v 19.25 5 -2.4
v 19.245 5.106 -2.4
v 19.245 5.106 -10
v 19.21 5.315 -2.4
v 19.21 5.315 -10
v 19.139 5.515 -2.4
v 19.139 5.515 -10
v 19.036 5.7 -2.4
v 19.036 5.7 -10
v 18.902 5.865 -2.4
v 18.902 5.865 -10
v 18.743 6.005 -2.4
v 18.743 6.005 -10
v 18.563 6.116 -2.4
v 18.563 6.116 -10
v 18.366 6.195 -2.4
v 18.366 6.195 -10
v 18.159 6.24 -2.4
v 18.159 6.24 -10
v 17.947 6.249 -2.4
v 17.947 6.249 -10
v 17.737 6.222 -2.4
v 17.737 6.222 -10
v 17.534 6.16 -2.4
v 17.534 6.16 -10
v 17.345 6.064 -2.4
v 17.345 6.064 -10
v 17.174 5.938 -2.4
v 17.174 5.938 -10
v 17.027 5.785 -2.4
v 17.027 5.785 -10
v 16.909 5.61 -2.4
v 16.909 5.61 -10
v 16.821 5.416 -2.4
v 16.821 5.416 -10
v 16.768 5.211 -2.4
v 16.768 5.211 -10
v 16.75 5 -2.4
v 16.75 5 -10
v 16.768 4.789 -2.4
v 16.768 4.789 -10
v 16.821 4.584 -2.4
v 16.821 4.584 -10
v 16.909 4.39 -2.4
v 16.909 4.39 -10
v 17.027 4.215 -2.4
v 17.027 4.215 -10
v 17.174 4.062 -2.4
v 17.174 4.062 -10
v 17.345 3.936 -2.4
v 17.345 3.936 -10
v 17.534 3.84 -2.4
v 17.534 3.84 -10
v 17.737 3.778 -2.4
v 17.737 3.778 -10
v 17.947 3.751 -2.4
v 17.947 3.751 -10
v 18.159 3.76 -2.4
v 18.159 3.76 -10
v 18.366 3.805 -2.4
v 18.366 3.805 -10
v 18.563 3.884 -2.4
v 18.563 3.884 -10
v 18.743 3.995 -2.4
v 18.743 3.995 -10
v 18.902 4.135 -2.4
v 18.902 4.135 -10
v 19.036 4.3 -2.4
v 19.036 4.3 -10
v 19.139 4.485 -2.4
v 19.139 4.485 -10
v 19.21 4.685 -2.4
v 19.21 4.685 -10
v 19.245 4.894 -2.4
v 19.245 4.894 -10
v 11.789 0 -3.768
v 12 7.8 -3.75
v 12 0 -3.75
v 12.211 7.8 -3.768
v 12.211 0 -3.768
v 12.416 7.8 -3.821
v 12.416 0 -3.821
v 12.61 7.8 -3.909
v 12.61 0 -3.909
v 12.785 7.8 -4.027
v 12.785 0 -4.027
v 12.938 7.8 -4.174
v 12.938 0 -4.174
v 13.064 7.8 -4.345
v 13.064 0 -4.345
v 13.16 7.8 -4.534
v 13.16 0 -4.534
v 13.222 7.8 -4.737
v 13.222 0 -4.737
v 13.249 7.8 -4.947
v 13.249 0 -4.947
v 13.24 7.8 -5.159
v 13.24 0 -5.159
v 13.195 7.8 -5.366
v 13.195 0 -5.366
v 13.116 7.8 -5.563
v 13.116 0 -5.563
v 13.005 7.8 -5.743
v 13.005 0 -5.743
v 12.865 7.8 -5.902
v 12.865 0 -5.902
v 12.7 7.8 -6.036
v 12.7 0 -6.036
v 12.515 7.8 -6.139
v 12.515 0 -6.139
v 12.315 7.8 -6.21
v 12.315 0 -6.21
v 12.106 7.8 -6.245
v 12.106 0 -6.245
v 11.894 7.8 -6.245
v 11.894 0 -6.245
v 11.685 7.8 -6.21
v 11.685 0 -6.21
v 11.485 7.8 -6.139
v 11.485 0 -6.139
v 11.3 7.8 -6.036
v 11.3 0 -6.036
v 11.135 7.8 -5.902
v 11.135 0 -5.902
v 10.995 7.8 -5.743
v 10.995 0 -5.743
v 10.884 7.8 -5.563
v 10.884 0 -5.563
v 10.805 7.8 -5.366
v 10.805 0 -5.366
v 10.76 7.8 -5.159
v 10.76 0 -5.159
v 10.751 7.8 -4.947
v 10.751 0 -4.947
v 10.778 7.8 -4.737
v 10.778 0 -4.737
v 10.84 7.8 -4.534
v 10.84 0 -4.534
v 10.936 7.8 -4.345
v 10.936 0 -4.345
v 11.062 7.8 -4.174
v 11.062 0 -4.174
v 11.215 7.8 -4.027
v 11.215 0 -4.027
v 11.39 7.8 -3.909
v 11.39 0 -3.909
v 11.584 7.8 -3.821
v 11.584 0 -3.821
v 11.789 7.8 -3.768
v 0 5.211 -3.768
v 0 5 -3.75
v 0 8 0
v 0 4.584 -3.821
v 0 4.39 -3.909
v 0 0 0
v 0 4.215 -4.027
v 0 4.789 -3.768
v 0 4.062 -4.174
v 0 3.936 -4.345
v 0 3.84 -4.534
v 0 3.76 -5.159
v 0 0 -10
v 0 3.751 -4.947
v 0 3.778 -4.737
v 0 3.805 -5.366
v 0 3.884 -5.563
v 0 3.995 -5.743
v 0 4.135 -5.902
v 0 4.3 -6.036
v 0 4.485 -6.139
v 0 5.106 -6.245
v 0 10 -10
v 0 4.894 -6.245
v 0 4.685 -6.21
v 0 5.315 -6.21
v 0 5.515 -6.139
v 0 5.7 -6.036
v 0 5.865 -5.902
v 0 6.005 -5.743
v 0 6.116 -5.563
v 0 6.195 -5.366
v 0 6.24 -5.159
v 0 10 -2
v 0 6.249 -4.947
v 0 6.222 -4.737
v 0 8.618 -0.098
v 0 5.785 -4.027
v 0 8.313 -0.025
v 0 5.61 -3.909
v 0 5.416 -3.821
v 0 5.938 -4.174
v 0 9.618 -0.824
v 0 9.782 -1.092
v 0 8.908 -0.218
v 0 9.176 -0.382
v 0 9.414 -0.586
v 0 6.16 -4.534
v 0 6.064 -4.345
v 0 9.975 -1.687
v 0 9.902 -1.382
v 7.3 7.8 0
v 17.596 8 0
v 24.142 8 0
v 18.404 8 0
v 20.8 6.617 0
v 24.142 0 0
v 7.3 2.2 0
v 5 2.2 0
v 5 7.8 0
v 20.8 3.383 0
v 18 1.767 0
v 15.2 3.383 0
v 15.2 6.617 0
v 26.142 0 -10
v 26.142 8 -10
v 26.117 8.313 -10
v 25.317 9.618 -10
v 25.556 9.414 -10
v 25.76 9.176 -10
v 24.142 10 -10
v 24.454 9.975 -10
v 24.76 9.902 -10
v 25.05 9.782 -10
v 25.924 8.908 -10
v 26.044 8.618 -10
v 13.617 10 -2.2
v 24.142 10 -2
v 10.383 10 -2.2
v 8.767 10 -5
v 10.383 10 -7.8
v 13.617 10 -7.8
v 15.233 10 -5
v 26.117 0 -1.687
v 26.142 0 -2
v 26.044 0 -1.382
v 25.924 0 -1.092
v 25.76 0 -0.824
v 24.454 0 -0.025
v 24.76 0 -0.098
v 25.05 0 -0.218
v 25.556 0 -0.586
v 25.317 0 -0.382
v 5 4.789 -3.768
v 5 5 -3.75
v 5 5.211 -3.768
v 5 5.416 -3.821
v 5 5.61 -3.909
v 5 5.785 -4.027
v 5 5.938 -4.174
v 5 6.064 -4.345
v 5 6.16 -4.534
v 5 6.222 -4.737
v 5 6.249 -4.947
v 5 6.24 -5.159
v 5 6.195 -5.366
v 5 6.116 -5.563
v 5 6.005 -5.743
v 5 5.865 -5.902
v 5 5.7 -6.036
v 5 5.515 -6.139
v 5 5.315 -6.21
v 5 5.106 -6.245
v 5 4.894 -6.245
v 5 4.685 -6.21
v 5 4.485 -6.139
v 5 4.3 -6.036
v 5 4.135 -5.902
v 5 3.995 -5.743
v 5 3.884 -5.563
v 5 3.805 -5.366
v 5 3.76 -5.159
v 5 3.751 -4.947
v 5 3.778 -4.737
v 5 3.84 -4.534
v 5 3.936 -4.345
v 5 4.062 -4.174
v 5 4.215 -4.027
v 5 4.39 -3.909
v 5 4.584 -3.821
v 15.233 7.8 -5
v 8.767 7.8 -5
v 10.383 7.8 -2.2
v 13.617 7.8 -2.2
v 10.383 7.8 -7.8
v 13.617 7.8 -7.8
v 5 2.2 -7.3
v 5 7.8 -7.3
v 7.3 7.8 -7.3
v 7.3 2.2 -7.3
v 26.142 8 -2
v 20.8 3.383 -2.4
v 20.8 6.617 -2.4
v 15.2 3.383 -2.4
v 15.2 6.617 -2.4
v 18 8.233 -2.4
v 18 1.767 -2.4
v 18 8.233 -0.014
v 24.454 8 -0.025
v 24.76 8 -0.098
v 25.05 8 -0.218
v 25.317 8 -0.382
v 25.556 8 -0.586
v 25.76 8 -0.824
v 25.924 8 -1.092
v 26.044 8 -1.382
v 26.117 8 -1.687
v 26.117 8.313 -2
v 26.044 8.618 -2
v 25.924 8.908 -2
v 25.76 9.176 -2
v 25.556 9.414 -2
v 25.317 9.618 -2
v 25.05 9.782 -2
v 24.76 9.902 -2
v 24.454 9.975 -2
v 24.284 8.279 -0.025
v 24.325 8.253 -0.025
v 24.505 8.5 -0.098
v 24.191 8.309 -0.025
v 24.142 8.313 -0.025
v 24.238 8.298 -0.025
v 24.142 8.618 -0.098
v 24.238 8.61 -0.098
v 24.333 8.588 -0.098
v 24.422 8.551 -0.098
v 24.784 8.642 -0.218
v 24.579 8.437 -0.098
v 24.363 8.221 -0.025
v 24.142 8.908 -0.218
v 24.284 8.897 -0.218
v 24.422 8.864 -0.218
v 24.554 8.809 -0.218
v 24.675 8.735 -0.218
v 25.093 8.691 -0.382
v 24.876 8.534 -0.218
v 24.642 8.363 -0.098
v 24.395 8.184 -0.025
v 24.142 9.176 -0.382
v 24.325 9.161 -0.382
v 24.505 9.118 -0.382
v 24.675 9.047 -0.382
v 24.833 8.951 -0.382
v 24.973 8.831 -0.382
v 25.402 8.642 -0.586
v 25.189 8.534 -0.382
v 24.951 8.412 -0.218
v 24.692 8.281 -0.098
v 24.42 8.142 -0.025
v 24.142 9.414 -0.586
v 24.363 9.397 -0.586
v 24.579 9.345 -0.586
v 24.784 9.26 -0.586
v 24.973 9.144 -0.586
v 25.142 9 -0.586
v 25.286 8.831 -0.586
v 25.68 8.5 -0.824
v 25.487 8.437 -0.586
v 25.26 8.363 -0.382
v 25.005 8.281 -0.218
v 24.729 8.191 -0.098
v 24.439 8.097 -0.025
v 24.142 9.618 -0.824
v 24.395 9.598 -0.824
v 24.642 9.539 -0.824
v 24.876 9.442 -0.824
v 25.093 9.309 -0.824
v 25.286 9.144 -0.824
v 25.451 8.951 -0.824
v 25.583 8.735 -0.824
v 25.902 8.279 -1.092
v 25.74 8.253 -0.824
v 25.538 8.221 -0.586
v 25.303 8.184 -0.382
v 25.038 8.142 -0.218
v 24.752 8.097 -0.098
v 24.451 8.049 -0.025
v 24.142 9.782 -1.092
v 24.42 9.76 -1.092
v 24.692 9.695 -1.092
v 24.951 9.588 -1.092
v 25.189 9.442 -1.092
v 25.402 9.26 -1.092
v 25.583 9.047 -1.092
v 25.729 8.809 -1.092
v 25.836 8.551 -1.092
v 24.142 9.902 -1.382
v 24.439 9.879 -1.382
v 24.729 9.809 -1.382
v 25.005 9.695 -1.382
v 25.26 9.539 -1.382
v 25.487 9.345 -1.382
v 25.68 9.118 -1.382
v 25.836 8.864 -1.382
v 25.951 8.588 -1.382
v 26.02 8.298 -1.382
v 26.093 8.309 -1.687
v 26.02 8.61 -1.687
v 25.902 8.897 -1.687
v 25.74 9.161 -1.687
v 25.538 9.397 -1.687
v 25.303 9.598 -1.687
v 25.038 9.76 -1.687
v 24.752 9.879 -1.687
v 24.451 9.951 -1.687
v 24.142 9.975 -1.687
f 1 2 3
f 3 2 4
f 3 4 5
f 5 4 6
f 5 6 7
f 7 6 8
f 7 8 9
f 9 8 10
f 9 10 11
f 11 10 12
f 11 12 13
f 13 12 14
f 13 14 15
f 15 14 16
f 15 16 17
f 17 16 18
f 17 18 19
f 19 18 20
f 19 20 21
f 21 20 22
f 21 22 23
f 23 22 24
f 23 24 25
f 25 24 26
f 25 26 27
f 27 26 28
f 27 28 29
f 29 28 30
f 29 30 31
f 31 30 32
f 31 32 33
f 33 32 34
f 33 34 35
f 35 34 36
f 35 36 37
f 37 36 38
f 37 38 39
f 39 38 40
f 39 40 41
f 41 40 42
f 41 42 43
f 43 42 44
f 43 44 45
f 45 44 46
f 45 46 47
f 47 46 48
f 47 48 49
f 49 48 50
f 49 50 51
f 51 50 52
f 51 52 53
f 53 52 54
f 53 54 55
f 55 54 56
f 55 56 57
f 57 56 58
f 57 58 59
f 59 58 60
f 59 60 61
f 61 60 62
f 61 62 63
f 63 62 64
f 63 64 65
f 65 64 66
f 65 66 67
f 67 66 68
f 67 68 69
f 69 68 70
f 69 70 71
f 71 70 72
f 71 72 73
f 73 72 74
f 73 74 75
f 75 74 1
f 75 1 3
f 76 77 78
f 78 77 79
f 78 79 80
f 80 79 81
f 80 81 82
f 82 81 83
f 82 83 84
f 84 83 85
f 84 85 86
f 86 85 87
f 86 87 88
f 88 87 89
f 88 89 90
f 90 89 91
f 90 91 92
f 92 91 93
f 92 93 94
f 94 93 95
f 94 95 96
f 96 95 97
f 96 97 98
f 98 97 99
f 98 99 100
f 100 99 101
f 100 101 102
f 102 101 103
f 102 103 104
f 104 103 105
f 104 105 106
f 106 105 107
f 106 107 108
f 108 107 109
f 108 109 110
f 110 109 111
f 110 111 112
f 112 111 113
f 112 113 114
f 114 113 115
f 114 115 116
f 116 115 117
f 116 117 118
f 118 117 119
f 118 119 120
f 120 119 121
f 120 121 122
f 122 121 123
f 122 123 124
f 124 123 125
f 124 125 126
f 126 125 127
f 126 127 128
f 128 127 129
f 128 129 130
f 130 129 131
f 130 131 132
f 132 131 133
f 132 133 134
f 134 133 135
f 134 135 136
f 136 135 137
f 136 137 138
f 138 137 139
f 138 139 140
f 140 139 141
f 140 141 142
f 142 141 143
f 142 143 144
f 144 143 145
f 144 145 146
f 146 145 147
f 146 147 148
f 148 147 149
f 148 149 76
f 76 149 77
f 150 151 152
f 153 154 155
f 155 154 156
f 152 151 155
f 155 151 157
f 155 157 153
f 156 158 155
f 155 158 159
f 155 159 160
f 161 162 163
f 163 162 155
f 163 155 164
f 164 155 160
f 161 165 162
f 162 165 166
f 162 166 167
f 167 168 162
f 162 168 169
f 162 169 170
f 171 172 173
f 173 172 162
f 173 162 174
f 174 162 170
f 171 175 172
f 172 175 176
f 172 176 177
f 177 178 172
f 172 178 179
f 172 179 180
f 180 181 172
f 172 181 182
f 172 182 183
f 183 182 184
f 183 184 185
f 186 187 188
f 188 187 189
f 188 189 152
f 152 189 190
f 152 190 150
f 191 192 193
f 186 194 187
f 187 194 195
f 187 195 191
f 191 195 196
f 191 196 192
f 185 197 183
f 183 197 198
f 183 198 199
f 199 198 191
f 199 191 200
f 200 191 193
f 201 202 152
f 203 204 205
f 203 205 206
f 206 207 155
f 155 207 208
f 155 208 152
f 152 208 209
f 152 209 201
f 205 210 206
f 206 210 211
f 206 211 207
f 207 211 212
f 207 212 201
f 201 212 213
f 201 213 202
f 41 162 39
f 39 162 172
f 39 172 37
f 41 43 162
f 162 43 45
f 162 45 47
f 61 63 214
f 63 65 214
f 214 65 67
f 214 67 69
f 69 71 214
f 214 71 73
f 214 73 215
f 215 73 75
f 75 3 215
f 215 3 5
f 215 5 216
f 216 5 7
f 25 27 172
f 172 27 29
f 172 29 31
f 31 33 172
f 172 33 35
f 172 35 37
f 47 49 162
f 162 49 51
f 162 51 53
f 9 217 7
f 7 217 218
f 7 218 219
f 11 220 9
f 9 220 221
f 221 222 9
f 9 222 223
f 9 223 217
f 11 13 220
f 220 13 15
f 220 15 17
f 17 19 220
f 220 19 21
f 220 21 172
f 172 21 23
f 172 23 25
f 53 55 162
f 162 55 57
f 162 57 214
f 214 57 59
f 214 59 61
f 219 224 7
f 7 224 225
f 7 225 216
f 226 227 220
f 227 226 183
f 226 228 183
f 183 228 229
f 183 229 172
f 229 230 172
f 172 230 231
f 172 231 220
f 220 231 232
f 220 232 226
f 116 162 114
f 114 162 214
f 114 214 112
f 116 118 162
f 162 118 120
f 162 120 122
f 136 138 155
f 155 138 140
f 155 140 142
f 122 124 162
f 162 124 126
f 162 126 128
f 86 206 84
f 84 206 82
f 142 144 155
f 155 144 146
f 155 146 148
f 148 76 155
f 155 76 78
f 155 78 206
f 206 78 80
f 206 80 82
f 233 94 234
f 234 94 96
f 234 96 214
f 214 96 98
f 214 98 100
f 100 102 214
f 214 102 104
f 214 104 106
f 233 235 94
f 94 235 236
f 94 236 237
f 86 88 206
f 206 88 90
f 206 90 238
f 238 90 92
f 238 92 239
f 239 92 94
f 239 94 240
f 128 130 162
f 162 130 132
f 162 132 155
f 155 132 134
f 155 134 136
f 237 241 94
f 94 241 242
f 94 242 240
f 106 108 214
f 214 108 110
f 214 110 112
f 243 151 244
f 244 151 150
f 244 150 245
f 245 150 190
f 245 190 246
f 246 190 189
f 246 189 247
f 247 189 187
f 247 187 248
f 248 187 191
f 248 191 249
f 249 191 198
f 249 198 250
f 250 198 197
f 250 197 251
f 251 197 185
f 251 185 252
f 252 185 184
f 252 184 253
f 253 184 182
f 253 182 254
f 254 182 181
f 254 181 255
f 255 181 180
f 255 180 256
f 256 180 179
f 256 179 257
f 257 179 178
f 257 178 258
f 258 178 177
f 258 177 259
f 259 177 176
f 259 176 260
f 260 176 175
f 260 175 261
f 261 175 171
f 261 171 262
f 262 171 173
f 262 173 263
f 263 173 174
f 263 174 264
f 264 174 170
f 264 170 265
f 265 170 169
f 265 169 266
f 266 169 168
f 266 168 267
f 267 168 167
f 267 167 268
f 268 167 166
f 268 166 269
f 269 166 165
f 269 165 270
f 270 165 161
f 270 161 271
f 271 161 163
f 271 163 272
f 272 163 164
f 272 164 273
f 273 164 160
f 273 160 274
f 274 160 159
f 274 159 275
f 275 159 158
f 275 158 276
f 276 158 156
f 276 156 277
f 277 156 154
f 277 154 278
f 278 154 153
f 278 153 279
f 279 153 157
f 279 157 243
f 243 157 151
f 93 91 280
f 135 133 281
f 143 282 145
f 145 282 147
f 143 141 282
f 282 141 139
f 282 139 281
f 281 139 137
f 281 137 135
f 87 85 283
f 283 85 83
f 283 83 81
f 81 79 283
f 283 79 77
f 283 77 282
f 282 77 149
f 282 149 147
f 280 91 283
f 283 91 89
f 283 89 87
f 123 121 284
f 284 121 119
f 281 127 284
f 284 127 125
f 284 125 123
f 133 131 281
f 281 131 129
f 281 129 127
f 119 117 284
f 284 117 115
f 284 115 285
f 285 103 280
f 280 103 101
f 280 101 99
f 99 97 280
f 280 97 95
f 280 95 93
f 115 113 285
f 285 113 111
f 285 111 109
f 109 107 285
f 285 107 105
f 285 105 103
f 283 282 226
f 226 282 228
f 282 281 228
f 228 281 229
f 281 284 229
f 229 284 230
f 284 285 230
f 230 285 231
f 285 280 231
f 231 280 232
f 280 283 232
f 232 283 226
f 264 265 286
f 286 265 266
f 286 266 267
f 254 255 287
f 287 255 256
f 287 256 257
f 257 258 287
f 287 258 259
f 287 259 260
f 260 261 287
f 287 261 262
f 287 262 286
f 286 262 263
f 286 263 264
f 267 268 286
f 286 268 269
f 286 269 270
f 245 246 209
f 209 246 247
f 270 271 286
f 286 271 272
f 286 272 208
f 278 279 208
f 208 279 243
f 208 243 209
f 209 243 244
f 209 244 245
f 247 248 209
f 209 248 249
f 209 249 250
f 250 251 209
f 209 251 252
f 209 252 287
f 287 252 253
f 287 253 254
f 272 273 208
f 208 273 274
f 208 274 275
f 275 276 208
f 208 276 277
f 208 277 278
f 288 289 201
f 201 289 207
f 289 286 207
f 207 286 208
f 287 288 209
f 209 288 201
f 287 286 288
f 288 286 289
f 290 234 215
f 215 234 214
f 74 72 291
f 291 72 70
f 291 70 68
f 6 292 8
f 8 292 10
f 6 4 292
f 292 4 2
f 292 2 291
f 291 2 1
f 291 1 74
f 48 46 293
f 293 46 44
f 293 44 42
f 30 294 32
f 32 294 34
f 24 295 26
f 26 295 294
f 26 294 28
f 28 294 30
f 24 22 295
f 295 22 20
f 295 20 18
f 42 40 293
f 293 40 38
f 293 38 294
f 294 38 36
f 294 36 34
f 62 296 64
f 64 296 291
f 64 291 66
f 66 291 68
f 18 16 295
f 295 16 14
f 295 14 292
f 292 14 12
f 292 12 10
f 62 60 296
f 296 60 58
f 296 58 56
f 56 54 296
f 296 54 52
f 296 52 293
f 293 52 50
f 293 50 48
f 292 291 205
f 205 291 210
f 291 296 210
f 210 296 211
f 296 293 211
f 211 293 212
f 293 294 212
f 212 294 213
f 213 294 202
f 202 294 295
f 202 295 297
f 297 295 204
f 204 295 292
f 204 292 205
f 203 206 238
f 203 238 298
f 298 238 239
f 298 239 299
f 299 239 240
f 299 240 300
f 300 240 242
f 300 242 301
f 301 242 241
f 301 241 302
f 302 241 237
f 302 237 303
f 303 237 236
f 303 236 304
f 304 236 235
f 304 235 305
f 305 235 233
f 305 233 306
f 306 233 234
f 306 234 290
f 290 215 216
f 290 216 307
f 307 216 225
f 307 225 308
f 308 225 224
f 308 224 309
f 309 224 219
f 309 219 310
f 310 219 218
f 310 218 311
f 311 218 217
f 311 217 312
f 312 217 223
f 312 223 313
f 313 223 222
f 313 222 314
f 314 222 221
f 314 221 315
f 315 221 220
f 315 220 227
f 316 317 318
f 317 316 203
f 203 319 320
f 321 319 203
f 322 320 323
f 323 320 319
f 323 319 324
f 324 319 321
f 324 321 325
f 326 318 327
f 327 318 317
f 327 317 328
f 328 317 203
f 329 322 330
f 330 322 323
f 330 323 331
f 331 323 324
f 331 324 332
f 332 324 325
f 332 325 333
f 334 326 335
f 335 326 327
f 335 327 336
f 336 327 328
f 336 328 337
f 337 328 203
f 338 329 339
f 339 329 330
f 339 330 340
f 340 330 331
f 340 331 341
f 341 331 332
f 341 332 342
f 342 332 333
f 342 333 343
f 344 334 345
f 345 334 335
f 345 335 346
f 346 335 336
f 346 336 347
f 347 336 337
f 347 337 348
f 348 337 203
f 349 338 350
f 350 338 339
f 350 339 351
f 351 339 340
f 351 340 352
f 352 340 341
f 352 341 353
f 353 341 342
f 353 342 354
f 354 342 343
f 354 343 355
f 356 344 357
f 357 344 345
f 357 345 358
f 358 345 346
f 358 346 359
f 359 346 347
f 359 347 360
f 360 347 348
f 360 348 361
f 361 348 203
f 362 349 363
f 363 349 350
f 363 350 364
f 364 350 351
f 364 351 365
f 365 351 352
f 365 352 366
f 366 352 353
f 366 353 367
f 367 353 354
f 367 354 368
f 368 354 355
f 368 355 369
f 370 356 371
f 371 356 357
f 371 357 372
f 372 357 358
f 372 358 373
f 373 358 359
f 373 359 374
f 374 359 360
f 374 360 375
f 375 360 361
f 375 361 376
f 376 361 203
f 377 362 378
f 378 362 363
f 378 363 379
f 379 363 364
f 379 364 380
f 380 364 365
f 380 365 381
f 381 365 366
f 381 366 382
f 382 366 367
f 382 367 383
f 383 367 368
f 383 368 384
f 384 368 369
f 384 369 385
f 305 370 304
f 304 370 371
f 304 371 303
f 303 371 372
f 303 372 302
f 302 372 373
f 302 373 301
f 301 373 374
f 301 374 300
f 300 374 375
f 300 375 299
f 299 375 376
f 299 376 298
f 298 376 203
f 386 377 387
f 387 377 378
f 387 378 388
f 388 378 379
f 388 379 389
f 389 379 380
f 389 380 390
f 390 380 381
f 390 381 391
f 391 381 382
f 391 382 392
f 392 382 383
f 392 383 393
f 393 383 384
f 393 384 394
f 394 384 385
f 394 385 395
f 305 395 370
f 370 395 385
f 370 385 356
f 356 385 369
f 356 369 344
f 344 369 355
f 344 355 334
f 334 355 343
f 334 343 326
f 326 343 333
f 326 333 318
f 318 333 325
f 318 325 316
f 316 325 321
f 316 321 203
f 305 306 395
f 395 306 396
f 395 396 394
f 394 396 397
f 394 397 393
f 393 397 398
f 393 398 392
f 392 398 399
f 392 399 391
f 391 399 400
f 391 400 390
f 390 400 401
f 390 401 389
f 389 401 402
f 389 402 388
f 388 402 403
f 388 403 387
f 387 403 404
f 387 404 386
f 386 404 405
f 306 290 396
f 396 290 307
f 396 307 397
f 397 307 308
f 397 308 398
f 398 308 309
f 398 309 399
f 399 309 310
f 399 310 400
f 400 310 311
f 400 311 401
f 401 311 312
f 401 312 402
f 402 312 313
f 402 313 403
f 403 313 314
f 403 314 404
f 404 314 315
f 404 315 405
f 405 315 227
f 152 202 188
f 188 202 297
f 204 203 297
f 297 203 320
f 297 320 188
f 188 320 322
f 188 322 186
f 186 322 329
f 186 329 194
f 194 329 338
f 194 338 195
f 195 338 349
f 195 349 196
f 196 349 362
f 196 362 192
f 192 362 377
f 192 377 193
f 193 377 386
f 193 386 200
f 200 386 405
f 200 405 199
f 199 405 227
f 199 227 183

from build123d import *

# Parameters (mm, degrees)
SKETCH1_W           = 74.5
SKETCH1_H           = 10
BOSS_EXTRUDE1_DEPTH = 10
SKETCH2_R           = 1.25
CUT_EXTRUDE1_DEPTH  = 10
SKETCH3_R           = 1.25
CUT_EXTRUDE2_DEPTH  = 10
SKETCH4_R           = 1.25
CUT_EXTRUDE3_DEPTH  = 5
CUT_EXTRUDE4_START  = -5
SKETCH5_R           = 1.25
CUT_EXTRUDE4_DEPTH  = 5
CUT_EXTRUDE5_DEPTH  = 2.2
CUT_EXTRUDE6_DEPTH  = 2.2
CUT_EXTRUDE8_DEPTH  = 2.2
SKETCH11_W          = 2.3
SKETCH11_H          = 5.6
CUT_EXTRUDE9_DEPTH  = 7.3
SKETCH12_W          = 92.79599186
SKETCH12_H          = 35.188487641
CUT_EXTRUDE10_DEPTH = 14
CUT_EXTRUDE11_DEPTH = 2.4
FILLET1_R           = 2
FILLET2_R           = 2


with BuildPart() as part:
    # Sketch1 → Boss-Extrude1 (new body)
    with BuildSketch(Plane(origin=(0, 0, 0), x_dir=(1, 0, 0), z_dir=(0, 1, 0))):
        with Locations((37.25, 5)):
            Rectangle(SKETCH1_W, SKETCH1_H)
    extrude(amount=BOSS_EXTRUDE1_DEPTH)

    # Sketch2 → Cut-Extrude1 (cut)
    with BuildSketch(Plane(origin=(0, 10, 0), x_dir=(1, 0, 0), z_dir=(0, 1, 0))):
        with Locations(Location((12, 5, 0), (0, 0, 270))):
            Circle(SKETCH2_R)
        with Locations(Location((62.5, 5, 0), (0, 0, 270))):
            Circle(SKETCH2_R)
    extrude(amount=-CUT_EXTRUDE1_DEPTH, mode=Mode.SUBTRACT)

    # Sketch3 → Cut-Extrude2 (cut)
    with BuildSketch(Plane(origin=(0, 0, -10), x_dir=(-1, 0, 0), z_dir=(0, 0, -1))):
        with Locations((-56.5, 5)):
            Circle(SKETCH3_R)
        with Locations((-18, 5)):
            Circle(SKETCH3_R)
    extrude(amount=-CUT_EXTRUDE2_DEPTH, mode=Mode.SUBTRACT)

    # Sketch4 → Cut-Extrude3 (cut)
    with BuildSketch(Plane(origin=(74.5, 0, 0), x_dir=(0, 0, -1), z_dir=(1, 0, 0))):
        with Locations((5, 5)):
            Circle(SKETCH4_R)
    extrude(amount=-CUT_EXTRUDE3_DEPTH, mode=Mode.SUBTRACT)

    # Sketch5 → Cut-Extrude4 (cut)
    with BuildSketch(Plane.ZY.offset(CUT_EXTRUDE4_START)):
        with Locations(Location((-5, 5, 0), (0, 0, 180))):
            Circle(SKETCH5_R)
    extrude(amount=CUT_EXTRUDE4_DEPTH, mode=Mode.SUBTRACT)

    # Sketch6 → Cut-Extrude5 (cut)
    with BuildSketch(Plane(origin=(0, 10, 0), x_dir=(1, 0, 0), z_dir=(0, 1, 0))):
        Polygon((13.616580754, 2.2), (15.233161507, 5), (13.616580754, 7.8), (10.383419246, 7.8), (8.766838493, 5), (10.383419246, 2.2), align=None)
    extrude(amount=-CUT_EXTRUDE5_DEPTH, mode=Mode.SUBTRACT)

    # Sketch7 → Cut-Extrude6 (cut)
    with BuildSketch(Plane(origin=(0, 10, 0), x_dir=(1, 0, 0), z_dir=(0, 1, 0))):
        Polygon((60.883419246, 7.8), (59.266838493, 5), (60.883419246, 2.2), (64.116580754, 2.2), (65.733161507, 5), (64.116580754, 7.8), align=None)
    extrude(amount=-CUT_EXTRUDE6_DEPTH, mode=Mode.SUBTRACT)

    # Sketch9 → Cut-Extrude8 (cut)
    with BuildSketch(Plane.XY):
        Polygon((58.116580754, 7.8), (54.883419246, 7.8), (53.266838493, 5), (54.883419246, 2.2), (58.116580754, 2.2), (59.733161507, 5), align=None)
    extrude(amount=-CUT_EXTRUDE8_DEPTH, mode=Mode.SUBTRACT)

    # Sketch11 → Cut-Extrude9 (cut)
    with BuildSketch(Plane.XY):
        with Locations((6.15, 5)):
            Rectangle(SKETCH11_W, SKETCH11_H)
        with Locations((68.35, 5)):
            Rectangle(SKETCH11_W, SKETCH11_H)
    extrude(amount=-CUT_EXTRUDE9_DEPTH, mode=Mode.SUBTRACT)

    # Sketch12 → Cut-Extrude10 (cut)
    with BuildSketch(Plane.XY):
        with Locations((72.539564665, 12.110455679)):
            Rectangle(SKETCH12_W, SKETCH12_H)
    extrude(amount=-CUT_EXTRUDE10_DEPTH, mode=Mode.SUBTRACT)

    # Sketch13 → Cut-Extrude11 (cut)
    with BuildSketch(Plane.XY):
        Polygon((20.8, 6.616580754), (18, 8.233161507), (15.2, 6.616580754), (15.2, 3.383419246), (18, 1.766838493), (20.8, 3.383419246), align=None)
    extrude(amount=-CUT_EXTRUDE11_DEPTH, mode=Mode.SUBTRACT)

    # Fillet1
    fillet1_edges = [part.edges().sort_by_distance(p)[0] for p in [
        (26.141568735, 5, 0),
    ]]
    fillet(fillet1_edges, radius=FILLET1_R)

    # Fillet2
    # the kernel refuses this fillet: 2 mm, written as the material it takes off along each edge
    with BuildSketch(Plane(origin=(26.141568735, 10, -15), x_dir=(-1, 0, 0), z_dir=(0, 0, 1))) as fillet2_piece_1:
        with BuildLine():
            CenterArc((FILLET2_R, FILLET2_R), FILLET2_R, 180, 90)
            Line((0, FILLET2_R), (0, 0))
            Line((0, 0), (FILLET2_R, 0))
        make_face()
    extrude(amount=13, mode=Mode.SUBTRACT)
    with BuildSketch(Plane(origin=(24.141568735, 10, -2), x_dir=(0, 0, 1), z_dir=(-1, 0, 0))) as fillet2_piece_2:
        with BuildLine():
            CenterArc((2 - FILLET2_R, -FILLET2_R), FILLET2_R, 0, 90)
            Line((2 - FILLET2_R, 0), (2, 0))
            Line((2, 0), (2, -FILLET2_R))
        make_face()
    revolve(axis=Axis((24.141568735, 10, -2), (0, 1, 0)), revolution_arc=90, mode=Mode.SUBTRACT)
    with BuildSketch(Plane(origin=(-5, 10, 0), x_dir=(0, -1, 0), z_dir=(1, 0, 0))) as fillet2_piece_3:
        with BuildLine():
            CenterArc((FILLET2_R, FILLET2_R), FILLET2_R, 180, 90)
            Line((0, FILLET2_R), (0, 0))
            Line((0, 0), (FILLET2_R, 0))
        make_face()
    extrude(amount=29.141568735, mode=Mode.SUBTRACT)


solid = part.part
